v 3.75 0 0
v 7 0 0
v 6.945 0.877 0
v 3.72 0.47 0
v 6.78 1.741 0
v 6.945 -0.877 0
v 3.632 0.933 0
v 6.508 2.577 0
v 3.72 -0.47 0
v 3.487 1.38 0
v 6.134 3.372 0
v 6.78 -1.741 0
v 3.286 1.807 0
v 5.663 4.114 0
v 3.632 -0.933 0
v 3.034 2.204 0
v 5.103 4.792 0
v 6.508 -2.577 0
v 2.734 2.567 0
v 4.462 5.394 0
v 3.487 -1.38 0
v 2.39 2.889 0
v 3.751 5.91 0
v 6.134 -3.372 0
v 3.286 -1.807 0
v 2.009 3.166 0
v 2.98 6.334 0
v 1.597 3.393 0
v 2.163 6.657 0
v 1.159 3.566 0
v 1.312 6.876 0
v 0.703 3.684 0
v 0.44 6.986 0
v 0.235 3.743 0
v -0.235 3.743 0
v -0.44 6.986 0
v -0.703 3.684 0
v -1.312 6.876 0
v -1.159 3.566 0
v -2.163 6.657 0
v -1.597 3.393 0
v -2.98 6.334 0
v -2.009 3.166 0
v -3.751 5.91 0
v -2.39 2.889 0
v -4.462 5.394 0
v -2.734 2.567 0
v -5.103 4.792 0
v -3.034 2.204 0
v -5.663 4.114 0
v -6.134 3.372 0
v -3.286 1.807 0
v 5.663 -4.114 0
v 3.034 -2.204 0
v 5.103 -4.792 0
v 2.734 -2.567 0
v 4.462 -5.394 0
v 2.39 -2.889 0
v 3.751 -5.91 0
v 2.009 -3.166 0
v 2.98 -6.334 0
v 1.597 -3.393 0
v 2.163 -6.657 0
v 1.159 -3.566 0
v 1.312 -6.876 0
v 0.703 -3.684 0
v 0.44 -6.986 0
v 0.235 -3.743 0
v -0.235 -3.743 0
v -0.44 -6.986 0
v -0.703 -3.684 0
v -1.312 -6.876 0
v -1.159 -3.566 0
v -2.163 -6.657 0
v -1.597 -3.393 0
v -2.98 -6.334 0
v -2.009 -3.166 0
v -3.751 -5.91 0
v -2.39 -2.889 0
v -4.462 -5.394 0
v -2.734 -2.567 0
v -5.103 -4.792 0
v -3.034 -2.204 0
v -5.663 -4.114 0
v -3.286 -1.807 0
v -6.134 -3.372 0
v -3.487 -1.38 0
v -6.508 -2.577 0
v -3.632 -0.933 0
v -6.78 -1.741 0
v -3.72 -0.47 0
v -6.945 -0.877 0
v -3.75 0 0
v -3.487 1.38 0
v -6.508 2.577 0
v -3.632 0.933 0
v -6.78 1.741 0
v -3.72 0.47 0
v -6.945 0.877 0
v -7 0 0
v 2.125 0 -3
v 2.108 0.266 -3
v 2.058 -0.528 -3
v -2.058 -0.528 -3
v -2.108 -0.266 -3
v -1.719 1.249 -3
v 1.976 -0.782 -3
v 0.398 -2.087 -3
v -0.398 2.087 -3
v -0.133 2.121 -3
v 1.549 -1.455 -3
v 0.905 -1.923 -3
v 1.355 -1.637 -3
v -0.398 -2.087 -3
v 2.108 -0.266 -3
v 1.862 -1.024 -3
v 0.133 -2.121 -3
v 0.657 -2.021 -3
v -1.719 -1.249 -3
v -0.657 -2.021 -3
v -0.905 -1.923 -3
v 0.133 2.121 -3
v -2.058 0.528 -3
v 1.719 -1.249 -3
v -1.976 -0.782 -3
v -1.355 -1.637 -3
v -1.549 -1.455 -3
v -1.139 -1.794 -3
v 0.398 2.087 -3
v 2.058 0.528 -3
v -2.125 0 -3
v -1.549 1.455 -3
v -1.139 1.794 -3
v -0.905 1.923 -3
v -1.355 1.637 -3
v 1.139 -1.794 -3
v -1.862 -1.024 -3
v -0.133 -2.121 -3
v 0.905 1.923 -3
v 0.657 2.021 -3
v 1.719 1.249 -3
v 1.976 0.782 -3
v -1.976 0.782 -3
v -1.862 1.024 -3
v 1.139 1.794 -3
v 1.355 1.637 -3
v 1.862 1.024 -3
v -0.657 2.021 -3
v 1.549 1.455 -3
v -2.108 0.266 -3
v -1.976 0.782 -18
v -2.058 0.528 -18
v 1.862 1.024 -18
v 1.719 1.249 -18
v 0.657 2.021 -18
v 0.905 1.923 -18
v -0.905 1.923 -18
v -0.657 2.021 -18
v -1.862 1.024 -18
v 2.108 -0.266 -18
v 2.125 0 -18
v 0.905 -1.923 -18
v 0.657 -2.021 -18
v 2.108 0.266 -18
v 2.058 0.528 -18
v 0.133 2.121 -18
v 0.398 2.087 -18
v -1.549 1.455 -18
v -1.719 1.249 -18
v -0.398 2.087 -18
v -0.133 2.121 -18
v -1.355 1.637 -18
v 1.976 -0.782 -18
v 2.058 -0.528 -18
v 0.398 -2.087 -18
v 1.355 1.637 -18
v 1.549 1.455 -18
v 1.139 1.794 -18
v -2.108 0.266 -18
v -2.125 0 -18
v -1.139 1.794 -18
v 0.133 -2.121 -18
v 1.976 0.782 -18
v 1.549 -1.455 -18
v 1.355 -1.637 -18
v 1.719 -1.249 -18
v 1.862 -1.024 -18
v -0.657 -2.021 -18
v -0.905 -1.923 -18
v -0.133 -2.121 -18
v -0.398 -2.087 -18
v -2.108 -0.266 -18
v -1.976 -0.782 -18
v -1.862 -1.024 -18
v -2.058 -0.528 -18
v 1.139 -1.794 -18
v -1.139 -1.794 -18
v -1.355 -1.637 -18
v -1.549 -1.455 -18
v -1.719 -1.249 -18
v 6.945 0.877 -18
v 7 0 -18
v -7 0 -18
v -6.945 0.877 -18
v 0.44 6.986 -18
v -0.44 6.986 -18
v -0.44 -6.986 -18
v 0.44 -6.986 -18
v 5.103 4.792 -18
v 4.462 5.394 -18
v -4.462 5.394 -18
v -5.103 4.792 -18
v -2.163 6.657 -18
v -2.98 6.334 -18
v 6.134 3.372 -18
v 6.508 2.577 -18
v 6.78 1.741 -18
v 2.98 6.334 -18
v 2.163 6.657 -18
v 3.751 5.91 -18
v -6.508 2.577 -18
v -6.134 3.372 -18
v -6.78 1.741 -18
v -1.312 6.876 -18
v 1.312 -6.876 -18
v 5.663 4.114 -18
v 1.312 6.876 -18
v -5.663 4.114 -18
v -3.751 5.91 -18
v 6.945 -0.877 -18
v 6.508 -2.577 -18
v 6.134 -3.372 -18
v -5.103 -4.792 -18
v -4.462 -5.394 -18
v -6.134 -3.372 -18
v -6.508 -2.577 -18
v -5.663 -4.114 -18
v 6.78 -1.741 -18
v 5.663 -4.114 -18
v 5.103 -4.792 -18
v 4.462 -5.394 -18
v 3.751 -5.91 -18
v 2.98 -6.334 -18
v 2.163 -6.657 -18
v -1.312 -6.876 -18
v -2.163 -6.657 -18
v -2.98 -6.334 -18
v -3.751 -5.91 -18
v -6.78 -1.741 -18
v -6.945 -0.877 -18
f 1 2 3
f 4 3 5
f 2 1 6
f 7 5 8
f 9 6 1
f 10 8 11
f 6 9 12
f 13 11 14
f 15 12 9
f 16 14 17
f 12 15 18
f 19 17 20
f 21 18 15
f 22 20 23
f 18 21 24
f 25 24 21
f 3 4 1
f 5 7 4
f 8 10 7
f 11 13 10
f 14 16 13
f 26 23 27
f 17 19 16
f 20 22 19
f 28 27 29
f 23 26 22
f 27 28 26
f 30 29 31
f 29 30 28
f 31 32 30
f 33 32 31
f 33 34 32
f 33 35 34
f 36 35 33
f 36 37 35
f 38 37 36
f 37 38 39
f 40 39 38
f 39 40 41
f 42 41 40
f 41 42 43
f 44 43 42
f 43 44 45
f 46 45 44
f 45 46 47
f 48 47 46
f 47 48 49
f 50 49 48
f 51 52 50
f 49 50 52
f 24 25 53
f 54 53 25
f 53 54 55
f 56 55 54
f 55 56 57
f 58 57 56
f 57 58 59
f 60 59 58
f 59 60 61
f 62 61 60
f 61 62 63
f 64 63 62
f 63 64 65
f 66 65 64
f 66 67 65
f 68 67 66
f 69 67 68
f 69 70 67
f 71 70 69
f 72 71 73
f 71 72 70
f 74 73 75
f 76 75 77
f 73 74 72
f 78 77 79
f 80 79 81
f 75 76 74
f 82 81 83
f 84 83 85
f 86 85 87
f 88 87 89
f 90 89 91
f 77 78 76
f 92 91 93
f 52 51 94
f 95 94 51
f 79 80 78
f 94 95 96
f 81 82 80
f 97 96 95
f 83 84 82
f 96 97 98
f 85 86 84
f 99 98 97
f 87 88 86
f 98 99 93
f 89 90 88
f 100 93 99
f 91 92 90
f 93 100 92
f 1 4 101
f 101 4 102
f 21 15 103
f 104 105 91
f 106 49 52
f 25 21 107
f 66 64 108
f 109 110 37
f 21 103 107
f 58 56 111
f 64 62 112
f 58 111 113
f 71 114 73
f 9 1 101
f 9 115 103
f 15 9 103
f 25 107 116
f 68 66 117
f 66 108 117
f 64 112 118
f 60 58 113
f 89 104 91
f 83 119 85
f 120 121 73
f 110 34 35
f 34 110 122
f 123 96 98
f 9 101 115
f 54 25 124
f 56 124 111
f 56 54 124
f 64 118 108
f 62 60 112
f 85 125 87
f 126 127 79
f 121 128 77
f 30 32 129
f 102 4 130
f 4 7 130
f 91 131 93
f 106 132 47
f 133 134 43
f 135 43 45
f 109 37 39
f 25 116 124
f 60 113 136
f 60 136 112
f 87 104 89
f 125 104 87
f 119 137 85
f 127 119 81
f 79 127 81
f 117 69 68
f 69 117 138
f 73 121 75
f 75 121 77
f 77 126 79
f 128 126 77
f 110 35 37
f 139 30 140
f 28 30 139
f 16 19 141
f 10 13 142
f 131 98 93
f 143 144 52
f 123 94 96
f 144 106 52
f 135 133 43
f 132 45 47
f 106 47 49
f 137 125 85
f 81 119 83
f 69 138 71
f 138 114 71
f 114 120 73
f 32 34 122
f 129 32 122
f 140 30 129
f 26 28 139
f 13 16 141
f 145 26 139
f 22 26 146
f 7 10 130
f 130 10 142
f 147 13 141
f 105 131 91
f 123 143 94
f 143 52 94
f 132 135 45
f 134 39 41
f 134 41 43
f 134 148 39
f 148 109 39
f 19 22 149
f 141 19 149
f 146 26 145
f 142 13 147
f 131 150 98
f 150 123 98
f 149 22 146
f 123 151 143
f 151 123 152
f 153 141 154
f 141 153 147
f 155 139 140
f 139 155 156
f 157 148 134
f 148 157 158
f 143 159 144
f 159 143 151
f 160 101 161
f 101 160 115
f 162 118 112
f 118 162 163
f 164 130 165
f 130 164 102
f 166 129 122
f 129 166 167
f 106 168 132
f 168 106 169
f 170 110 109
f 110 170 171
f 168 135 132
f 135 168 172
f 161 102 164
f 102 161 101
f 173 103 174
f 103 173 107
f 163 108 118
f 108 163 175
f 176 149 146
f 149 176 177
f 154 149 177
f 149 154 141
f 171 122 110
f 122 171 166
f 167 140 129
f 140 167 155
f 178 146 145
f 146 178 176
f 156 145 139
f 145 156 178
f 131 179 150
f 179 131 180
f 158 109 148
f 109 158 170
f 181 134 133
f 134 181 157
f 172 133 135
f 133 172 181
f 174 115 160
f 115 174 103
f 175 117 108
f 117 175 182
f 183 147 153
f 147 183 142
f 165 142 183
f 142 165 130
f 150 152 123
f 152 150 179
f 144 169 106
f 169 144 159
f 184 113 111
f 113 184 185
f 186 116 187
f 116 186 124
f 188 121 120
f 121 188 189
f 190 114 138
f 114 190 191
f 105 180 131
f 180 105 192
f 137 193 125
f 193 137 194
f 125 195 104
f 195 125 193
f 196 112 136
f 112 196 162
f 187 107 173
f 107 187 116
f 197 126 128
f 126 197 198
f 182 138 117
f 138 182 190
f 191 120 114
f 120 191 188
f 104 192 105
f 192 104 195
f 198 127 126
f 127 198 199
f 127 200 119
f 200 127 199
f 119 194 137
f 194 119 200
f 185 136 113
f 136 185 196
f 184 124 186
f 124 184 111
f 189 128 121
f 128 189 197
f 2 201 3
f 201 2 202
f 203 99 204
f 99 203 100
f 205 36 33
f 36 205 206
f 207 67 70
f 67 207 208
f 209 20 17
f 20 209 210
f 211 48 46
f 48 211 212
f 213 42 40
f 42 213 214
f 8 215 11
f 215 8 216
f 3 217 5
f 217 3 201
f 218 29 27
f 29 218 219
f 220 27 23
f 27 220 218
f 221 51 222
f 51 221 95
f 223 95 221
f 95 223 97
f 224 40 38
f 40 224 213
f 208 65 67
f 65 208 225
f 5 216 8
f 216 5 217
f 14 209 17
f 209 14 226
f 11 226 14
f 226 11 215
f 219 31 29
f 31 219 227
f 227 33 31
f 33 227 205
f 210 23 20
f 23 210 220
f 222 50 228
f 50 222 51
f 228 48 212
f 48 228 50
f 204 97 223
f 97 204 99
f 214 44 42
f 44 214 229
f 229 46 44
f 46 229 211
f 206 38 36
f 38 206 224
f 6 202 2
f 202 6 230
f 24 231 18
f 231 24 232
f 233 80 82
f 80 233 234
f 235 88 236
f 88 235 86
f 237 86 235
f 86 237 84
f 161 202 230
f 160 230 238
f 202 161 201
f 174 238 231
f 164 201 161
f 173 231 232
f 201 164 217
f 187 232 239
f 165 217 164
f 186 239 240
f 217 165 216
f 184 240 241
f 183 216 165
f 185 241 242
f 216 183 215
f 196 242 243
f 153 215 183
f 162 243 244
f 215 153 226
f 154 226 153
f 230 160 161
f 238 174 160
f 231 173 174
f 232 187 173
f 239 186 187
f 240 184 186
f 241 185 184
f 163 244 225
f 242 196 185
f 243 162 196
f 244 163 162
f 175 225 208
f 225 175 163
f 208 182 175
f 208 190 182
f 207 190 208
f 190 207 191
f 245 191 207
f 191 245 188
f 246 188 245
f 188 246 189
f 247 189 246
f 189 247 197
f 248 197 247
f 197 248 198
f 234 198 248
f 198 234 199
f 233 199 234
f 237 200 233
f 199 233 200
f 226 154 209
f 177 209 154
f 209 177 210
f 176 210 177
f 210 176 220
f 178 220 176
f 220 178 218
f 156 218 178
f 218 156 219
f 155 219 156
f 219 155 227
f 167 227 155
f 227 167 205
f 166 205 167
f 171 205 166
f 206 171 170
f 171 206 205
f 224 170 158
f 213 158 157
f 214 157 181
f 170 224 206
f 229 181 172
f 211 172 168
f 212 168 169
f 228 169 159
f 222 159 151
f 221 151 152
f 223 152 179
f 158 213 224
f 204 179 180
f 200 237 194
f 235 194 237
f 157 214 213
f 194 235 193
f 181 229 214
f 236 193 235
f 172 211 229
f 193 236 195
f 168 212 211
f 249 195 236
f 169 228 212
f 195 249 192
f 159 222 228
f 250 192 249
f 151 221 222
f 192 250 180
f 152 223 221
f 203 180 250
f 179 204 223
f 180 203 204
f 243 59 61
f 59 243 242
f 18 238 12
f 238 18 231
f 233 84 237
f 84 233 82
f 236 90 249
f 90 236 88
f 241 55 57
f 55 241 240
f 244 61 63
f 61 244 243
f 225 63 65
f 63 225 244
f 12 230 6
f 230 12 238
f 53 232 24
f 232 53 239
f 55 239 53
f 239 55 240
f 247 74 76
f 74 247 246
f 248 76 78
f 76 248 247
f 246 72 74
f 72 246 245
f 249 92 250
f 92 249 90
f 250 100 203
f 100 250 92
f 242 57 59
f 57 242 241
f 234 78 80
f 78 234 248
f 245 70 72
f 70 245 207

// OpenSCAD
$fn = 50;


difference() {
	union() {
		translate(v = [0, 0, -18.0000000000]) {
			cylinder(h = 18, r = 7.0000000000);
		}
	}
	union() {
		translate(v = [0, 0, 0]) {
			rotate(a = [0, 0, 0]) {
				difference() {
					union() {
						translate(v = [0, 0, -21.0000000000]) {
							cylinder(h = 21, r = 2.0000000000);
						}
						translate(v = [0, 0, -3]) {
							cylinder(h = 3, r1 = 2.1250000000, r2 = 3.7500000000);
						}
						translate(v = [0, 0, -21.0000000000]) {
							cylinder(h = 21, r = 2.1250000000);
						}
						translate(v = [0, 0, -21.0000000000]) {
							cylinder(h = 21, r = 2.0000000000);
						}
					}
					union();
				}
			}
		}
	}
}
